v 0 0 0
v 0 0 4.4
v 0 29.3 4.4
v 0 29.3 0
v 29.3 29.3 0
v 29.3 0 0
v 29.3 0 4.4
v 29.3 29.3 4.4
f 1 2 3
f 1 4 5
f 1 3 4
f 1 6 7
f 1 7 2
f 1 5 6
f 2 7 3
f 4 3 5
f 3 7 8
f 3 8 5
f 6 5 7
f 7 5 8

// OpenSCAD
/* Warning, this is a very basic generator with a lot of approximation 
input data : [PLCC, XPX, 29.3x29.3x4.4mm, 84, , C, C04-00093C]
generated by com.zoubworld.electronics.cad.model3d.Basic
Date : Sun Feb 15 10:50:48 CET 2026
*/

//body
color("black")
translate([0,0,0])
cube([29.3,29.3,4.4], center=false);
